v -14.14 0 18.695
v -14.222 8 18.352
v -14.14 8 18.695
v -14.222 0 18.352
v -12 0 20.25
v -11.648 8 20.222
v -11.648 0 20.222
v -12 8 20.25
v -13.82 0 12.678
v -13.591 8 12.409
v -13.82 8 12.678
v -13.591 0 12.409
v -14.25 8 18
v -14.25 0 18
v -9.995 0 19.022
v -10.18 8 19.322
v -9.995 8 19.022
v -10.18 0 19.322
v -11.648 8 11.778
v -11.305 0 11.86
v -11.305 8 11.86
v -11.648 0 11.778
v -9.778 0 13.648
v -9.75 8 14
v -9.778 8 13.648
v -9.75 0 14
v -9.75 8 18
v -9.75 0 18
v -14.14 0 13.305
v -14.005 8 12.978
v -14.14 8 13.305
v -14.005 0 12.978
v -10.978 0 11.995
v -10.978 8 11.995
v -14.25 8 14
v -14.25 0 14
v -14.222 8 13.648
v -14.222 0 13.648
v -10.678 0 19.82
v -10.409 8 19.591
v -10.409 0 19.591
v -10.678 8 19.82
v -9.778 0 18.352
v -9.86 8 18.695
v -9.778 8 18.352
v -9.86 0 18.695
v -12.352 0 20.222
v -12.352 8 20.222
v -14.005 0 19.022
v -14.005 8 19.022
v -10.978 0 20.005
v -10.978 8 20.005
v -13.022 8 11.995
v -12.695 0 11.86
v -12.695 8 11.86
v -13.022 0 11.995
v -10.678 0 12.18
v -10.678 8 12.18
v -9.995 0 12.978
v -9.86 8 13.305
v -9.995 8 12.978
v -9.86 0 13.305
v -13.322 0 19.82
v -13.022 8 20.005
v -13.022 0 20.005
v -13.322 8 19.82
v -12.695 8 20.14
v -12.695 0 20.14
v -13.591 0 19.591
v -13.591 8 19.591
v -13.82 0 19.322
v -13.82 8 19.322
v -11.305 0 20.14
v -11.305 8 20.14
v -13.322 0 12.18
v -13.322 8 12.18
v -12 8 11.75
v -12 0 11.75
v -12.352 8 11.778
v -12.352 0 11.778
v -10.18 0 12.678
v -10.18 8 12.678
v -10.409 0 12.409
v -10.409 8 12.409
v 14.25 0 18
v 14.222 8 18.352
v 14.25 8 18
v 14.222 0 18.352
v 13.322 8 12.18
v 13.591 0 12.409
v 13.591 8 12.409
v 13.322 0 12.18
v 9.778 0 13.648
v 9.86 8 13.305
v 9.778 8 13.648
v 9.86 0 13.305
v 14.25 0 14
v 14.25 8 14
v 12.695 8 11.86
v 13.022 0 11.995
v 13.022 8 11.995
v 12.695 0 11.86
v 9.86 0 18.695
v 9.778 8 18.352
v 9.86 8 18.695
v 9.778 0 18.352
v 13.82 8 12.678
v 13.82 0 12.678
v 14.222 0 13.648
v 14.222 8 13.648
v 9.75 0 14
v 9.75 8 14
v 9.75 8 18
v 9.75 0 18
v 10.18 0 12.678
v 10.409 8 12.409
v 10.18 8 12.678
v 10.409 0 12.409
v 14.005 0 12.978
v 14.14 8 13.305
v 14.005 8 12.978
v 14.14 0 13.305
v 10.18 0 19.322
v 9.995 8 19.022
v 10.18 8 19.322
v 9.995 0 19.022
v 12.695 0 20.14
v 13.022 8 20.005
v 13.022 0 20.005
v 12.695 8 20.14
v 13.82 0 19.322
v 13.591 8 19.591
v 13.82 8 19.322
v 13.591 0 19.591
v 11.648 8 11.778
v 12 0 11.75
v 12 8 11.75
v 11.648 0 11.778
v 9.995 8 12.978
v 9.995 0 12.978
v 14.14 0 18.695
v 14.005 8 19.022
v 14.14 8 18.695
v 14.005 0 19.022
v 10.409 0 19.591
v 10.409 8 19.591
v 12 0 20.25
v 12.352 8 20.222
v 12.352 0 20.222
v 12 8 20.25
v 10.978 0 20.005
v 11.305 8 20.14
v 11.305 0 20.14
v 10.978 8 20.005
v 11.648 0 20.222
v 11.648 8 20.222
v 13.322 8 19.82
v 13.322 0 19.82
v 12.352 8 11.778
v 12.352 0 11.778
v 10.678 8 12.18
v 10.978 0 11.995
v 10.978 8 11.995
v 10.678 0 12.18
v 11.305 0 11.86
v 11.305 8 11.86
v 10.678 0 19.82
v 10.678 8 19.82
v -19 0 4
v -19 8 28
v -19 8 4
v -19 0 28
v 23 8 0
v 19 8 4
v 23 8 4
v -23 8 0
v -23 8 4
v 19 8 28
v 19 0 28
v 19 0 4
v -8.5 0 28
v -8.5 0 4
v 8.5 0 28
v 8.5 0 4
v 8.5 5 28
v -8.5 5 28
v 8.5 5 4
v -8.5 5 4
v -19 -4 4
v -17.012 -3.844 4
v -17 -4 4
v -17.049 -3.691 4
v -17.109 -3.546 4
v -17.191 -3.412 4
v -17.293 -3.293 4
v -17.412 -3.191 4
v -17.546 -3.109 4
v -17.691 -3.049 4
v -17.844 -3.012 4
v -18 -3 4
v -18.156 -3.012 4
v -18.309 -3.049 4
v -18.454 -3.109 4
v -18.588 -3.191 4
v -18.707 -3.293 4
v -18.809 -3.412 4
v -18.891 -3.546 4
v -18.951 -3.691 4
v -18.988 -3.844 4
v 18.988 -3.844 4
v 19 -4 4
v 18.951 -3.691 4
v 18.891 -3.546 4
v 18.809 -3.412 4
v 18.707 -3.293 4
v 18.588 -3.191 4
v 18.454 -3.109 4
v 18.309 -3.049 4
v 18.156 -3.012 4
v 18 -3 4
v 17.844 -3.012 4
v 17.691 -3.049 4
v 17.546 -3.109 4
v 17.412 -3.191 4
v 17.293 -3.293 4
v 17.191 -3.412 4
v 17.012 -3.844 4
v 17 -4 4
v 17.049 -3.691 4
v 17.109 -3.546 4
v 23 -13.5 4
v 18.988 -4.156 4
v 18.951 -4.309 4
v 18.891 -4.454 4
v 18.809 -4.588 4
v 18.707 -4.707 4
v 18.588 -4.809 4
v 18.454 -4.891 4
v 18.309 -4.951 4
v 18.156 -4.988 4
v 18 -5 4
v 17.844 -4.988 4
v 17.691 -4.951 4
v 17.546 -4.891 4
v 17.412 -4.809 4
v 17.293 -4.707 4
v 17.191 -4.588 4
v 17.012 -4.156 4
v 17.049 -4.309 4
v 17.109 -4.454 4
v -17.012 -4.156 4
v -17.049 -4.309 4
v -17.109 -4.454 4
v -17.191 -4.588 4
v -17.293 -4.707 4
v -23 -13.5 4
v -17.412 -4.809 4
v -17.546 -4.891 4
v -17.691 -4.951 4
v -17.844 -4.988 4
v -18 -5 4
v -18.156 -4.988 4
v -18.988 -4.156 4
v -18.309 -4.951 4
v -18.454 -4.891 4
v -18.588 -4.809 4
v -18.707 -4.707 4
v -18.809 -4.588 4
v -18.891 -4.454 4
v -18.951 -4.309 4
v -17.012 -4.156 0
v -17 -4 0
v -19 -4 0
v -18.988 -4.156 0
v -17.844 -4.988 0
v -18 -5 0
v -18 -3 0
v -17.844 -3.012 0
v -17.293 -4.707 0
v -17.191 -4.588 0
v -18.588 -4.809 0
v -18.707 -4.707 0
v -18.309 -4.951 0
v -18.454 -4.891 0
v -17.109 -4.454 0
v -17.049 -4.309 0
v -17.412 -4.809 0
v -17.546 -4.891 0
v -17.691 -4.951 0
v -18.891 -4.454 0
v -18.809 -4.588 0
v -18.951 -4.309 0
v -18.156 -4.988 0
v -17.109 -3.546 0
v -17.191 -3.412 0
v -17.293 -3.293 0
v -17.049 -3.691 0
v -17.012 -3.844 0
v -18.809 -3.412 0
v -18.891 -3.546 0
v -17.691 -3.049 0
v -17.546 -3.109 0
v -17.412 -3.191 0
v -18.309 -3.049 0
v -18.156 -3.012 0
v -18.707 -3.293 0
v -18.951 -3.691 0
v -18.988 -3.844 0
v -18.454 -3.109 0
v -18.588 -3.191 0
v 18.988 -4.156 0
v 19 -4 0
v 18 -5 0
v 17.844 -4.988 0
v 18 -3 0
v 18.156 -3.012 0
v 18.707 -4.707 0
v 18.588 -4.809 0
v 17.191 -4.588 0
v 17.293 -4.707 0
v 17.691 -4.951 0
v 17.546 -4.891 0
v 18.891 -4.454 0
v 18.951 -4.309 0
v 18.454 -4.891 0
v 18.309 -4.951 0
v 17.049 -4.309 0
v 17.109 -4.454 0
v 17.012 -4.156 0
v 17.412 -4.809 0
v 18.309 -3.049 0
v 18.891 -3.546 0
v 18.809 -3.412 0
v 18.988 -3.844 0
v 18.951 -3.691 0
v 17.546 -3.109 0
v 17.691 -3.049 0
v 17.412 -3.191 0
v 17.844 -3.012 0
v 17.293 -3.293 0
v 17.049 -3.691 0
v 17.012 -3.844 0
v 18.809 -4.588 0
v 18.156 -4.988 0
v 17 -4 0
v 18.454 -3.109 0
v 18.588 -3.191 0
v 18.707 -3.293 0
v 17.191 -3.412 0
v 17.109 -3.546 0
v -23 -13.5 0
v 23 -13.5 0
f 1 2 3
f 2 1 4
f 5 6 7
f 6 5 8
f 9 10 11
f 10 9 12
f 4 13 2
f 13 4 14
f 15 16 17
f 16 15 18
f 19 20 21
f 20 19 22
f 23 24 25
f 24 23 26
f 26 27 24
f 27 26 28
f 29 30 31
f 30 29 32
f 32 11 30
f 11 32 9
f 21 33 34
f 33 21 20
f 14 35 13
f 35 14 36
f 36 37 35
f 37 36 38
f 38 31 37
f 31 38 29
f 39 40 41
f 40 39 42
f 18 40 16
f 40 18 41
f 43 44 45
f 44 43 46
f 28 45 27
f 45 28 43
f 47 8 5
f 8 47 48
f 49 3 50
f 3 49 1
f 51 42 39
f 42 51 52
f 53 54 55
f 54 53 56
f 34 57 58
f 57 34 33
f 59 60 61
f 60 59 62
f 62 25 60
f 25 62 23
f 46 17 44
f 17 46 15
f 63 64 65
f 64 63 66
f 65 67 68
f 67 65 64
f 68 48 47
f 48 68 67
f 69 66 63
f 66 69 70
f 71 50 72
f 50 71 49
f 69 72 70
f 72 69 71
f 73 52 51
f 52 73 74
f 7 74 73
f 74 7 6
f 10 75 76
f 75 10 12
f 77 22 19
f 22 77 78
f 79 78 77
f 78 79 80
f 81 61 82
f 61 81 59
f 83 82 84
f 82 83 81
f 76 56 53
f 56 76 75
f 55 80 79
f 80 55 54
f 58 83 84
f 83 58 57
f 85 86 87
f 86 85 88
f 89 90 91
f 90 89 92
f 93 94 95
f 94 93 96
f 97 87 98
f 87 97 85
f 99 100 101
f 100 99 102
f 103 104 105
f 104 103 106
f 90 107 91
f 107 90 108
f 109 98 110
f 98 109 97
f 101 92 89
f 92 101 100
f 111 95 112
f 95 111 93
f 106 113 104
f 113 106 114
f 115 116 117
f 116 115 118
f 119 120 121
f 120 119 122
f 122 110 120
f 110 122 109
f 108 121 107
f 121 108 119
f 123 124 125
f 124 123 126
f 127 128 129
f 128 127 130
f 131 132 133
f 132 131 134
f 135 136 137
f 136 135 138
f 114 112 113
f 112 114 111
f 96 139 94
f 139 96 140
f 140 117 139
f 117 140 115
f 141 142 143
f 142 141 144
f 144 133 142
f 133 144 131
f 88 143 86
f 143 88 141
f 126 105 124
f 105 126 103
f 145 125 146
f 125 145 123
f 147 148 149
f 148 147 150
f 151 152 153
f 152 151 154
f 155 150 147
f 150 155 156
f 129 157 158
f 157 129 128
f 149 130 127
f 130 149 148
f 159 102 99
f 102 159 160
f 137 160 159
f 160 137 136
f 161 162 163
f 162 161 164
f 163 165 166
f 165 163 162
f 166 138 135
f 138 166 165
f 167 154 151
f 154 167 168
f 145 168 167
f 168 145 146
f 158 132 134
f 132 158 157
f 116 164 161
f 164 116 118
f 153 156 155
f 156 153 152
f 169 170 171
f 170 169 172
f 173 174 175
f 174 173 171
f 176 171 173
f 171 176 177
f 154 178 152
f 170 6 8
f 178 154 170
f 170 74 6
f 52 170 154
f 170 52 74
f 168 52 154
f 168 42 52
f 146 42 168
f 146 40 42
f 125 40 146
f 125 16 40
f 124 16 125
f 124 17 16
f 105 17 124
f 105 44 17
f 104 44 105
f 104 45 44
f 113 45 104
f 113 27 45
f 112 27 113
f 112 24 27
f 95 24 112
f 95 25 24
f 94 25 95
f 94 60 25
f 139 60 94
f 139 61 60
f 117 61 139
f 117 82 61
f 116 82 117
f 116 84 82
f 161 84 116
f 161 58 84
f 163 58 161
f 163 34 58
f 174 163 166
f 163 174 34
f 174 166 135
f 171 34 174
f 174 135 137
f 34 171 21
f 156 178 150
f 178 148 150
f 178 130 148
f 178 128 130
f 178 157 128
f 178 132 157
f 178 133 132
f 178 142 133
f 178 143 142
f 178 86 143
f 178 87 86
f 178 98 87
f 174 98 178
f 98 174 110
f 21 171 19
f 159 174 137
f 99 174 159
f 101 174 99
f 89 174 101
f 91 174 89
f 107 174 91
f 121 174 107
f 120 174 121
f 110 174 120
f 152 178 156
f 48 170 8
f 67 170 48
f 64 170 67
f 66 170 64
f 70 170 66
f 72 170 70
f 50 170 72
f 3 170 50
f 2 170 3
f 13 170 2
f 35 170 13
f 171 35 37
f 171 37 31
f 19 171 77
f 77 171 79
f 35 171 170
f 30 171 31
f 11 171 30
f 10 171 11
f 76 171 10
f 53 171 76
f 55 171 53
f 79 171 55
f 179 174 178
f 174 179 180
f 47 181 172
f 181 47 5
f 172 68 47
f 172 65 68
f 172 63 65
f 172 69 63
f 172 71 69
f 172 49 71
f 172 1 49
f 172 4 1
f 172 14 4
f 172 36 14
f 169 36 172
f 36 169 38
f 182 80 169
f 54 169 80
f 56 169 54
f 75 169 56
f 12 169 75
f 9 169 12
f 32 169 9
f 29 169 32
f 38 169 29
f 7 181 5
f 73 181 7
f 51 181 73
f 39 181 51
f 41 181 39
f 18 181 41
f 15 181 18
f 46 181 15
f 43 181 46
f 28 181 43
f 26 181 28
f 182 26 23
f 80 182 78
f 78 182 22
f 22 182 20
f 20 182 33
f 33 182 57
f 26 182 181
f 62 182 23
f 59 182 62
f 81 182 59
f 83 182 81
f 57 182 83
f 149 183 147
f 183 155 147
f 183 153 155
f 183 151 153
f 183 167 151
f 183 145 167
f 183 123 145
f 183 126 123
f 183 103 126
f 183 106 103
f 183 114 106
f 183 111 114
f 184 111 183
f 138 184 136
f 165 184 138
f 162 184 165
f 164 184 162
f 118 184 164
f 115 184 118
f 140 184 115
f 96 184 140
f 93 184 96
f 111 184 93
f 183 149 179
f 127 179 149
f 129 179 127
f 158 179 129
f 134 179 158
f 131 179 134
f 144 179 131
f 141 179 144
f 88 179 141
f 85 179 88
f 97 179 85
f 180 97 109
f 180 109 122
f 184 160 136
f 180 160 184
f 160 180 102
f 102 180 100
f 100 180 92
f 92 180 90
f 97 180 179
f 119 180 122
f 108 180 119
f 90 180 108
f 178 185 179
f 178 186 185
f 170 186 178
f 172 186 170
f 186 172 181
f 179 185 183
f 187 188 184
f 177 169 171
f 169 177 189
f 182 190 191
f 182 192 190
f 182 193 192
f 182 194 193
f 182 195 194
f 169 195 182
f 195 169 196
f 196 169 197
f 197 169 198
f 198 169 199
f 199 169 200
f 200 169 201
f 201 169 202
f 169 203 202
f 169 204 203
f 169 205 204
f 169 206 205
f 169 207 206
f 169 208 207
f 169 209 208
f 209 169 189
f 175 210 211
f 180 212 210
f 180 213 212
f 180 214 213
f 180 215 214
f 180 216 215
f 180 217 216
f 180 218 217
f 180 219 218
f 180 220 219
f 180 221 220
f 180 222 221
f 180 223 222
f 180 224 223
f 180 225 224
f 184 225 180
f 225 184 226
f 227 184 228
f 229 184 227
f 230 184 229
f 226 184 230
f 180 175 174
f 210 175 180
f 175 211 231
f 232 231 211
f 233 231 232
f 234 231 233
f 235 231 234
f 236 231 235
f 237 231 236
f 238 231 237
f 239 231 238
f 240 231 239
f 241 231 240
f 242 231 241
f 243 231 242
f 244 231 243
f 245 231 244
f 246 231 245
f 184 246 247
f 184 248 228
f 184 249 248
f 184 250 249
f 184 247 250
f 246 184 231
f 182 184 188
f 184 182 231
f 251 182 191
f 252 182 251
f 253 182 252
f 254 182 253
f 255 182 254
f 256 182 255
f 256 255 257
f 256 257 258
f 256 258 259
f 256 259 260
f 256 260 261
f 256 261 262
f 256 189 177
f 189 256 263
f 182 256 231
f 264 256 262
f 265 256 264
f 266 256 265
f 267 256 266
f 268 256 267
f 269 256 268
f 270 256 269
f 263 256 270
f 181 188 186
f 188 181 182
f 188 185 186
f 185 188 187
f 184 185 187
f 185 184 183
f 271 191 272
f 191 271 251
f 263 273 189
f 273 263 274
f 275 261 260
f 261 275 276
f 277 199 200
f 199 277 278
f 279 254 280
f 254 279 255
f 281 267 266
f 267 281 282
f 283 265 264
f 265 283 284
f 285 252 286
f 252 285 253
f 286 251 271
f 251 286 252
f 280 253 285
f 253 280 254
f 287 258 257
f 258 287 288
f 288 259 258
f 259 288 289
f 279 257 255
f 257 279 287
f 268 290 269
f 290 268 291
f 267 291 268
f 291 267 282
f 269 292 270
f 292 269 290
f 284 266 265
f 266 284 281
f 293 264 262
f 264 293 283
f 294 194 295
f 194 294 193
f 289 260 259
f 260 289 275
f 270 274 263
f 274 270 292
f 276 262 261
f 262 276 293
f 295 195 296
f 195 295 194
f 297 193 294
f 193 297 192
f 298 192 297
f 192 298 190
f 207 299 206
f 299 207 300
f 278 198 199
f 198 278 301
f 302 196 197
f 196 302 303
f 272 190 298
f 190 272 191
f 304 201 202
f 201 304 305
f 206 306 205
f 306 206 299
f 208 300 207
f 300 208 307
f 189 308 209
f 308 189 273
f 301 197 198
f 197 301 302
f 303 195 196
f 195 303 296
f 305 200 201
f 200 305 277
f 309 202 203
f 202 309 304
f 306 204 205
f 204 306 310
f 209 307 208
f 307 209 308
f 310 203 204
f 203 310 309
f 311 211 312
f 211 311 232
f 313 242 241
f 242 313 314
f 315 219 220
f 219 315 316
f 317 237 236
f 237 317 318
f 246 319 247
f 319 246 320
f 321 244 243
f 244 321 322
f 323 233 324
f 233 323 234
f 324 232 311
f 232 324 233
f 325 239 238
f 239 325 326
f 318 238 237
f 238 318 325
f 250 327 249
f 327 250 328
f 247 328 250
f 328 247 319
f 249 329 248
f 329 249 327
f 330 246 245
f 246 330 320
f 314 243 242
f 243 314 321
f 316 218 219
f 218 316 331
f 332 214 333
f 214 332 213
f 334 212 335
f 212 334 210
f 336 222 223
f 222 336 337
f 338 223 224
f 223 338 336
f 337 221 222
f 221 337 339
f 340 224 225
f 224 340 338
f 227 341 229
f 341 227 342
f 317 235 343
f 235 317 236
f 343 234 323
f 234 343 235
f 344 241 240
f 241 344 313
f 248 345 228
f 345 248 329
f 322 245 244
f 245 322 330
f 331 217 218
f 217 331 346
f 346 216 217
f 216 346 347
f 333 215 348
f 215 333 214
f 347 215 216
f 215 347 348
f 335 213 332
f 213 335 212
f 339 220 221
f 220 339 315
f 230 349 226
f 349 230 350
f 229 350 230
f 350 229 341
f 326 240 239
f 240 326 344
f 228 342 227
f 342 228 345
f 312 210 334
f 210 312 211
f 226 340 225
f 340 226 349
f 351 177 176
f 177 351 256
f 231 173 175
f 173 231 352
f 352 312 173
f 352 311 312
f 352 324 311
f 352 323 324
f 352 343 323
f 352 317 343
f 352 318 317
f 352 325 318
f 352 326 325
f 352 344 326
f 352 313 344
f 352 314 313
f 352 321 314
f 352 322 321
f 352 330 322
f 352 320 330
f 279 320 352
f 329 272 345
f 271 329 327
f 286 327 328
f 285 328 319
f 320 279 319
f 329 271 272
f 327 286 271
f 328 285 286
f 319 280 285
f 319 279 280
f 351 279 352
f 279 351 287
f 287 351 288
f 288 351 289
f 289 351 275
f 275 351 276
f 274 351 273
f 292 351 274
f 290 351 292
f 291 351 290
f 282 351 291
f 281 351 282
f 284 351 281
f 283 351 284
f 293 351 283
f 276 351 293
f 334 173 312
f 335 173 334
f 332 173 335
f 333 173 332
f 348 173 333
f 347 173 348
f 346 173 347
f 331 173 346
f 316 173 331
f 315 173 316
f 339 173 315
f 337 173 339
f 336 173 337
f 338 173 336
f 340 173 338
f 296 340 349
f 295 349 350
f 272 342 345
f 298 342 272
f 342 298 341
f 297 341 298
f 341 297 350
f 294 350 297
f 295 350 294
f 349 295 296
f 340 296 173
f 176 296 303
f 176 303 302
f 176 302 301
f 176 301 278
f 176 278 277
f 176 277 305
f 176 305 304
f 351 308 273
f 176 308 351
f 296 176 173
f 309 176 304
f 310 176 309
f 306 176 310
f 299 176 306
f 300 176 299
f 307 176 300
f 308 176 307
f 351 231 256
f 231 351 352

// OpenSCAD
// TFMini bracket: holds the Benewake TFMini (SparkFun Qwiic, SEN-14786)
// in front of Grover's front cross beam, lenses forward, centred and level
// at the beam's mid-height.
//
// It sits on the beam's TOP face and bolts through the two beam holes next
// to the centre pair (x = +/-12 mm); the centre pair is taken by the bracket
// under the beam that joins the cross beam to the caster beam, so their
// screw heads / nuts on top sit in a relief pocket under this part. Beam
// holes are plain M4 through-holes: M4 screw from the top, nut underneath.
// A plate drops in front of the beam's front face and carries the sensor
// by its two ears (M2).
//
// Frame: X across the rover, +Y forward (travel), +Z up. Origin = the
// beam's top-front edge at the rover's centreline.
//
// Print: lying on the sensor plate's FRONT face (the flat face the TFMini
// bolts to goes down on the bed) - the tabs then stand up, no supports,
// no brim.
//
// Render:  openscad -o tfmini-bracket.stl tfmini-bracket.scad

// ---- TFMini (Benewake drawing, TFmini/TFmini-S housing) --------------------
tf_len     = 42;     // ear tip to ear tip
tf_body_w  = 33;     // body between the ears
tf_h       = 15;     // body height on the mounting face
tf_ear_cc  = 36;     // ear hole centre-to-centre
tf_ear_d   = 2.35;   // ear hole (M2)
m2_pilot   = 2.0;    // M2 machine screw threads itself into PETG

// ---- Beam (Makeblock 0824, lying flat; ASSUMED, check on the part) --------
beam_depth = 24;     // top face, front-to-back
beam_h     = 8;      // front face height
hole_x     = 12;     // next hole out from the centre pair (8 mm grid)
hole_y     = -12;    // hole row on the top face's centreline
m4_hole    = 4.5;    // clearance, oversized like the camera strip
slot_adj   = 2.0;    // +/- front-back play in case the row isn't centred

// ---- Centre-pair relief (nuts / heads of the under-beam bracket) ----------
relief_w   = 17;     // x = +/-8.5 clears an M4 nut at x = +/-4 (8.1 mm AF-corners)
relief_h   = 5;      // M4 nut 3.2 mm + stub of screw

// ---- Bracket ----------------------------------------------------------------
base_top   = relief_h + 3;   // 3 mm bridge over the relief
base_w     = 2 * (hole_x + 7);
plate_t    = 4;              // sensor plate thickness (Y)
plate_w    = tf_len + 4;
sensor_zc  = -beam_h / 2;    // sensor centre = beam mid-height
plate_bot  = sensor_zc - tf_h / 2 - 2;

$fn = 40;

module base() {
  difference() {
    translate([-base_w / 2, -beam_depth, 0]) cube([base_w, beam_depth, base_top]);
    // relief over the centre pair
    translate([-relief_w / 2, -beam_depth - 1, -1]) cube([relief_w, beam_depth + 2, relief_h + 1]);
    // M4 slots, front-back
    for (s = [-1, 1]) hull() for (dy = [-slot_adj, slot_adj])
      translate([s * hole_x, hole_y + dy, -1]) cylinder(d = m4_hole, h = base_top + 2);
  }
}

module plate() {
  difference() {
    translate([-plate_w / 2, 0, plate_bot]) cube([plate_w, plate_t, base_top - plate_bot]);
    // ear holes, through Y
    for (s = [-1, 1])
      translate([s * tf_ear_cc / 2, -1, sensor_zc]) rotate([-90, 0, 0])
        cylinder(d = m2_pilot, h = plate_t + 2);
  }
}

// TFMini ghost for visual checks only (not exported): body on the plate front.
module tfmini_ghost() {
  translate([-tf_body_w / 2, plate_t, sensor_zc - tf_h / 2]) cube([tf_body_w, 11, tf_h]);
  for (x = [-5, 5]) translate([x, plate_t + 11, sensor_zc]) rotate([-90, 0, 0]) cylinder(d = 10, h = 5);
}

// print_orient: lay it on the sensor plate's front face (+Y -> -Z)
print_orient = true;
if (print_orient) {
  rotate([-90, 0, 0]) translate([0, -plate_t, 0]) { base(); plate(); }
} else {
  base(); plate();
  %tfmini_ghost();
}
